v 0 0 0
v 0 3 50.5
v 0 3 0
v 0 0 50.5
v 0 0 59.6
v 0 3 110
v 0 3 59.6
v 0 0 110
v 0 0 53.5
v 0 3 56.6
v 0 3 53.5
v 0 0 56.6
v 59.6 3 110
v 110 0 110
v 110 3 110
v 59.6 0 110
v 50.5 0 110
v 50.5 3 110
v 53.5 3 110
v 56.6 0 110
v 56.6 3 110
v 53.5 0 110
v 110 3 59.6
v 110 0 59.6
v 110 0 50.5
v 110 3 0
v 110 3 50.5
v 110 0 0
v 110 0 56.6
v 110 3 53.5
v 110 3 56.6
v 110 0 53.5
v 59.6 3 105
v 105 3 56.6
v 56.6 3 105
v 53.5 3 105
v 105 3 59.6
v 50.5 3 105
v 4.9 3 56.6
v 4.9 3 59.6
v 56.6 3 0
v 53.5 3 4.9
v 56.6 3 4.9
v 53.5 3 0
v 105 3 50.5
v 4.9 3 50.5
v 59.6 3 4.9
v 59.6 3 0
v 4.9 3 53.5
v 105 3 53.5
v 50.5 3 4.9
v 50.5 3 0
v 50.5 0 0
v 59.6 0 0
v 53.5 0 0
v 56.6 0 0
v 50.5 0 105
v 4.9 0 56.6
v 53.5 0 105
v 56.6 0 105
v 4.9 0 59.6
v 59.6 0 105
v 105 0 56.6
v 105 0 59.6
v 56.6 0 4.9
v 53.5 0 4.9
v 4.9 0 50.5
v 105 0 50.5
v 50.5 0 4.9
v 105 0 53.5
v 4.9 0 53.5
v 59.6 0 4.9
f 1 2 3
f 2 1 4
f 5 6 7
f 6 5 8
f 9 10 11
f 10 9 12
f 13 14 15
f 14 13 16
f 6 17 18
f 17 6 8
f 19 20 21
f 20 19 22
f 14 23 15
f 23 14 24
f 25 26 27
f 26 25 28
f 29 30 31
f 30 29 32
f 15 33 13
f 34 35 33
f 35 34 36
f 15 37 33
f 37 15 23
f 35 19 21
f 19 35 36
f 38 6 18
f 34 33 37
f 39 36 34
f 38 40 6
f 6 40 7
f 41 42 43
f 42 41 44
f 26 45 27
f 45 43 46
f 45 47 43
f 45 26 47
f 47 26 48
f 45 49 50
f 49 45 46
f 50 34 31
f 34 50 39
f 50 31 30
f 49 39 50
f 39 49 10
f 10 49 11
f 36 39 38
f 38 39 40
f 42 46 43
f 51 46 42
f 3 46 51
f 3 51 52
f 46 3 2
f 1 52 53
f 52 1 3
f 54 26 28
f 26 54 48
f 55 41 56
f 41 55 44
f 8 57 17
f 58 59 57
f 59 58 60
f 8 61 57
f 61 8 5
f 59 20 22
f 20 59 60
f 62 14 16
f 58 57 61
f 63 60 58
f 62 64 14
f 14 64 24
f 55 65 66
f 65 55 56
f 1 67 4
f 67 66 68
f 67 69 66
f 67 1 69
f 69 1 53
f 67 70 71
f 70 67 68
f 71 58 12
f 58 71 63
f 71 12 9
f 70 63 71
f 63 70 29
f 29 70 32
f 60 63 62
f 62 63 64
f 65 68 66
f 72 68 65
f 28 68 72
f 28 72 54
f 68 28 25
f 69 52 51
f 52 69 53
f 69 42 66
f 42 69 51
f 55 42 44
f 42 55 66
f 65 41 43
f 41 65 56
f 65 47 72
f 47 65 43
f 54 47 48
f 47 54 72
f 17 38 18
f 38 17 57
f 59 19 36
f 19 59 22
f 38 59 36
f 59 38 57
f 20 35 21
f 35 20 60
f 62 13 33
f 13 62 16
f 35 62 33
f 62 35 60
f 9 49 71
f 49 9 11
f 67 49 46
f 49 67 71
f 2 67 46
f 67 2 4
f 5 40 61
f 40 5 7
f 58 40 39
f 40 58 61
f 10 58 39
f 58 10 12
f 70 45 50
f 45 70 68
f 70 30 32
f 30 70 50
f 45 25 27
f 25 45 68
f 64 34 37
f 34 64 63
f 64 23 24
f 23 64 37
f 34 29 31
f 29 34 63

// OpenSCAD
// ============================================================
// Hamster Habitat — Düz Panel (solid, notchlu)
// Boyut: 110x3x110mm | 4 kenarda 2x connector yuvası
// ============================================================
$fn = 32;

module panel_duz() {
  n1 = 50.5;  // 1. notch baslangici — ikili kume, 3mm aralikli, merkez 55mm
  n2 = 56.6;  // 2. notch baslangici

  color("lightblue", 0.8)
  difference() {
    cube([110, 3, 110]);
    // alt kenar — 2 notch
    translate([n1, -0.1,  -0.1]) cube([3, 3.2, 5]);
    translate([n2, -0.1,  -0.1]) cube([3, 3.2, 5]);
    // ust kenar — 2 notch
    translate([n1, -0.1,   105]) cube([3, 3.2, 5]);
    translate([n2, -0.1,   105]) cube([3, 3.2, 5]);
    // sol kenar — 2 notch
    translate([ -0.1, -0.1, n1]) cube([5, 3.2, 3]);
    translate([ -0.1, -0.1, n2]) cube([5, 3.2, 3]);
    // sag kenar — 2 notch
    translate([  105, -0.1, n1]) cube([5, 3.2, 3]);
    translate([  105, -0.1, n2]) cube([5, 3.2, 3]);
  }
}

panel_duz();
